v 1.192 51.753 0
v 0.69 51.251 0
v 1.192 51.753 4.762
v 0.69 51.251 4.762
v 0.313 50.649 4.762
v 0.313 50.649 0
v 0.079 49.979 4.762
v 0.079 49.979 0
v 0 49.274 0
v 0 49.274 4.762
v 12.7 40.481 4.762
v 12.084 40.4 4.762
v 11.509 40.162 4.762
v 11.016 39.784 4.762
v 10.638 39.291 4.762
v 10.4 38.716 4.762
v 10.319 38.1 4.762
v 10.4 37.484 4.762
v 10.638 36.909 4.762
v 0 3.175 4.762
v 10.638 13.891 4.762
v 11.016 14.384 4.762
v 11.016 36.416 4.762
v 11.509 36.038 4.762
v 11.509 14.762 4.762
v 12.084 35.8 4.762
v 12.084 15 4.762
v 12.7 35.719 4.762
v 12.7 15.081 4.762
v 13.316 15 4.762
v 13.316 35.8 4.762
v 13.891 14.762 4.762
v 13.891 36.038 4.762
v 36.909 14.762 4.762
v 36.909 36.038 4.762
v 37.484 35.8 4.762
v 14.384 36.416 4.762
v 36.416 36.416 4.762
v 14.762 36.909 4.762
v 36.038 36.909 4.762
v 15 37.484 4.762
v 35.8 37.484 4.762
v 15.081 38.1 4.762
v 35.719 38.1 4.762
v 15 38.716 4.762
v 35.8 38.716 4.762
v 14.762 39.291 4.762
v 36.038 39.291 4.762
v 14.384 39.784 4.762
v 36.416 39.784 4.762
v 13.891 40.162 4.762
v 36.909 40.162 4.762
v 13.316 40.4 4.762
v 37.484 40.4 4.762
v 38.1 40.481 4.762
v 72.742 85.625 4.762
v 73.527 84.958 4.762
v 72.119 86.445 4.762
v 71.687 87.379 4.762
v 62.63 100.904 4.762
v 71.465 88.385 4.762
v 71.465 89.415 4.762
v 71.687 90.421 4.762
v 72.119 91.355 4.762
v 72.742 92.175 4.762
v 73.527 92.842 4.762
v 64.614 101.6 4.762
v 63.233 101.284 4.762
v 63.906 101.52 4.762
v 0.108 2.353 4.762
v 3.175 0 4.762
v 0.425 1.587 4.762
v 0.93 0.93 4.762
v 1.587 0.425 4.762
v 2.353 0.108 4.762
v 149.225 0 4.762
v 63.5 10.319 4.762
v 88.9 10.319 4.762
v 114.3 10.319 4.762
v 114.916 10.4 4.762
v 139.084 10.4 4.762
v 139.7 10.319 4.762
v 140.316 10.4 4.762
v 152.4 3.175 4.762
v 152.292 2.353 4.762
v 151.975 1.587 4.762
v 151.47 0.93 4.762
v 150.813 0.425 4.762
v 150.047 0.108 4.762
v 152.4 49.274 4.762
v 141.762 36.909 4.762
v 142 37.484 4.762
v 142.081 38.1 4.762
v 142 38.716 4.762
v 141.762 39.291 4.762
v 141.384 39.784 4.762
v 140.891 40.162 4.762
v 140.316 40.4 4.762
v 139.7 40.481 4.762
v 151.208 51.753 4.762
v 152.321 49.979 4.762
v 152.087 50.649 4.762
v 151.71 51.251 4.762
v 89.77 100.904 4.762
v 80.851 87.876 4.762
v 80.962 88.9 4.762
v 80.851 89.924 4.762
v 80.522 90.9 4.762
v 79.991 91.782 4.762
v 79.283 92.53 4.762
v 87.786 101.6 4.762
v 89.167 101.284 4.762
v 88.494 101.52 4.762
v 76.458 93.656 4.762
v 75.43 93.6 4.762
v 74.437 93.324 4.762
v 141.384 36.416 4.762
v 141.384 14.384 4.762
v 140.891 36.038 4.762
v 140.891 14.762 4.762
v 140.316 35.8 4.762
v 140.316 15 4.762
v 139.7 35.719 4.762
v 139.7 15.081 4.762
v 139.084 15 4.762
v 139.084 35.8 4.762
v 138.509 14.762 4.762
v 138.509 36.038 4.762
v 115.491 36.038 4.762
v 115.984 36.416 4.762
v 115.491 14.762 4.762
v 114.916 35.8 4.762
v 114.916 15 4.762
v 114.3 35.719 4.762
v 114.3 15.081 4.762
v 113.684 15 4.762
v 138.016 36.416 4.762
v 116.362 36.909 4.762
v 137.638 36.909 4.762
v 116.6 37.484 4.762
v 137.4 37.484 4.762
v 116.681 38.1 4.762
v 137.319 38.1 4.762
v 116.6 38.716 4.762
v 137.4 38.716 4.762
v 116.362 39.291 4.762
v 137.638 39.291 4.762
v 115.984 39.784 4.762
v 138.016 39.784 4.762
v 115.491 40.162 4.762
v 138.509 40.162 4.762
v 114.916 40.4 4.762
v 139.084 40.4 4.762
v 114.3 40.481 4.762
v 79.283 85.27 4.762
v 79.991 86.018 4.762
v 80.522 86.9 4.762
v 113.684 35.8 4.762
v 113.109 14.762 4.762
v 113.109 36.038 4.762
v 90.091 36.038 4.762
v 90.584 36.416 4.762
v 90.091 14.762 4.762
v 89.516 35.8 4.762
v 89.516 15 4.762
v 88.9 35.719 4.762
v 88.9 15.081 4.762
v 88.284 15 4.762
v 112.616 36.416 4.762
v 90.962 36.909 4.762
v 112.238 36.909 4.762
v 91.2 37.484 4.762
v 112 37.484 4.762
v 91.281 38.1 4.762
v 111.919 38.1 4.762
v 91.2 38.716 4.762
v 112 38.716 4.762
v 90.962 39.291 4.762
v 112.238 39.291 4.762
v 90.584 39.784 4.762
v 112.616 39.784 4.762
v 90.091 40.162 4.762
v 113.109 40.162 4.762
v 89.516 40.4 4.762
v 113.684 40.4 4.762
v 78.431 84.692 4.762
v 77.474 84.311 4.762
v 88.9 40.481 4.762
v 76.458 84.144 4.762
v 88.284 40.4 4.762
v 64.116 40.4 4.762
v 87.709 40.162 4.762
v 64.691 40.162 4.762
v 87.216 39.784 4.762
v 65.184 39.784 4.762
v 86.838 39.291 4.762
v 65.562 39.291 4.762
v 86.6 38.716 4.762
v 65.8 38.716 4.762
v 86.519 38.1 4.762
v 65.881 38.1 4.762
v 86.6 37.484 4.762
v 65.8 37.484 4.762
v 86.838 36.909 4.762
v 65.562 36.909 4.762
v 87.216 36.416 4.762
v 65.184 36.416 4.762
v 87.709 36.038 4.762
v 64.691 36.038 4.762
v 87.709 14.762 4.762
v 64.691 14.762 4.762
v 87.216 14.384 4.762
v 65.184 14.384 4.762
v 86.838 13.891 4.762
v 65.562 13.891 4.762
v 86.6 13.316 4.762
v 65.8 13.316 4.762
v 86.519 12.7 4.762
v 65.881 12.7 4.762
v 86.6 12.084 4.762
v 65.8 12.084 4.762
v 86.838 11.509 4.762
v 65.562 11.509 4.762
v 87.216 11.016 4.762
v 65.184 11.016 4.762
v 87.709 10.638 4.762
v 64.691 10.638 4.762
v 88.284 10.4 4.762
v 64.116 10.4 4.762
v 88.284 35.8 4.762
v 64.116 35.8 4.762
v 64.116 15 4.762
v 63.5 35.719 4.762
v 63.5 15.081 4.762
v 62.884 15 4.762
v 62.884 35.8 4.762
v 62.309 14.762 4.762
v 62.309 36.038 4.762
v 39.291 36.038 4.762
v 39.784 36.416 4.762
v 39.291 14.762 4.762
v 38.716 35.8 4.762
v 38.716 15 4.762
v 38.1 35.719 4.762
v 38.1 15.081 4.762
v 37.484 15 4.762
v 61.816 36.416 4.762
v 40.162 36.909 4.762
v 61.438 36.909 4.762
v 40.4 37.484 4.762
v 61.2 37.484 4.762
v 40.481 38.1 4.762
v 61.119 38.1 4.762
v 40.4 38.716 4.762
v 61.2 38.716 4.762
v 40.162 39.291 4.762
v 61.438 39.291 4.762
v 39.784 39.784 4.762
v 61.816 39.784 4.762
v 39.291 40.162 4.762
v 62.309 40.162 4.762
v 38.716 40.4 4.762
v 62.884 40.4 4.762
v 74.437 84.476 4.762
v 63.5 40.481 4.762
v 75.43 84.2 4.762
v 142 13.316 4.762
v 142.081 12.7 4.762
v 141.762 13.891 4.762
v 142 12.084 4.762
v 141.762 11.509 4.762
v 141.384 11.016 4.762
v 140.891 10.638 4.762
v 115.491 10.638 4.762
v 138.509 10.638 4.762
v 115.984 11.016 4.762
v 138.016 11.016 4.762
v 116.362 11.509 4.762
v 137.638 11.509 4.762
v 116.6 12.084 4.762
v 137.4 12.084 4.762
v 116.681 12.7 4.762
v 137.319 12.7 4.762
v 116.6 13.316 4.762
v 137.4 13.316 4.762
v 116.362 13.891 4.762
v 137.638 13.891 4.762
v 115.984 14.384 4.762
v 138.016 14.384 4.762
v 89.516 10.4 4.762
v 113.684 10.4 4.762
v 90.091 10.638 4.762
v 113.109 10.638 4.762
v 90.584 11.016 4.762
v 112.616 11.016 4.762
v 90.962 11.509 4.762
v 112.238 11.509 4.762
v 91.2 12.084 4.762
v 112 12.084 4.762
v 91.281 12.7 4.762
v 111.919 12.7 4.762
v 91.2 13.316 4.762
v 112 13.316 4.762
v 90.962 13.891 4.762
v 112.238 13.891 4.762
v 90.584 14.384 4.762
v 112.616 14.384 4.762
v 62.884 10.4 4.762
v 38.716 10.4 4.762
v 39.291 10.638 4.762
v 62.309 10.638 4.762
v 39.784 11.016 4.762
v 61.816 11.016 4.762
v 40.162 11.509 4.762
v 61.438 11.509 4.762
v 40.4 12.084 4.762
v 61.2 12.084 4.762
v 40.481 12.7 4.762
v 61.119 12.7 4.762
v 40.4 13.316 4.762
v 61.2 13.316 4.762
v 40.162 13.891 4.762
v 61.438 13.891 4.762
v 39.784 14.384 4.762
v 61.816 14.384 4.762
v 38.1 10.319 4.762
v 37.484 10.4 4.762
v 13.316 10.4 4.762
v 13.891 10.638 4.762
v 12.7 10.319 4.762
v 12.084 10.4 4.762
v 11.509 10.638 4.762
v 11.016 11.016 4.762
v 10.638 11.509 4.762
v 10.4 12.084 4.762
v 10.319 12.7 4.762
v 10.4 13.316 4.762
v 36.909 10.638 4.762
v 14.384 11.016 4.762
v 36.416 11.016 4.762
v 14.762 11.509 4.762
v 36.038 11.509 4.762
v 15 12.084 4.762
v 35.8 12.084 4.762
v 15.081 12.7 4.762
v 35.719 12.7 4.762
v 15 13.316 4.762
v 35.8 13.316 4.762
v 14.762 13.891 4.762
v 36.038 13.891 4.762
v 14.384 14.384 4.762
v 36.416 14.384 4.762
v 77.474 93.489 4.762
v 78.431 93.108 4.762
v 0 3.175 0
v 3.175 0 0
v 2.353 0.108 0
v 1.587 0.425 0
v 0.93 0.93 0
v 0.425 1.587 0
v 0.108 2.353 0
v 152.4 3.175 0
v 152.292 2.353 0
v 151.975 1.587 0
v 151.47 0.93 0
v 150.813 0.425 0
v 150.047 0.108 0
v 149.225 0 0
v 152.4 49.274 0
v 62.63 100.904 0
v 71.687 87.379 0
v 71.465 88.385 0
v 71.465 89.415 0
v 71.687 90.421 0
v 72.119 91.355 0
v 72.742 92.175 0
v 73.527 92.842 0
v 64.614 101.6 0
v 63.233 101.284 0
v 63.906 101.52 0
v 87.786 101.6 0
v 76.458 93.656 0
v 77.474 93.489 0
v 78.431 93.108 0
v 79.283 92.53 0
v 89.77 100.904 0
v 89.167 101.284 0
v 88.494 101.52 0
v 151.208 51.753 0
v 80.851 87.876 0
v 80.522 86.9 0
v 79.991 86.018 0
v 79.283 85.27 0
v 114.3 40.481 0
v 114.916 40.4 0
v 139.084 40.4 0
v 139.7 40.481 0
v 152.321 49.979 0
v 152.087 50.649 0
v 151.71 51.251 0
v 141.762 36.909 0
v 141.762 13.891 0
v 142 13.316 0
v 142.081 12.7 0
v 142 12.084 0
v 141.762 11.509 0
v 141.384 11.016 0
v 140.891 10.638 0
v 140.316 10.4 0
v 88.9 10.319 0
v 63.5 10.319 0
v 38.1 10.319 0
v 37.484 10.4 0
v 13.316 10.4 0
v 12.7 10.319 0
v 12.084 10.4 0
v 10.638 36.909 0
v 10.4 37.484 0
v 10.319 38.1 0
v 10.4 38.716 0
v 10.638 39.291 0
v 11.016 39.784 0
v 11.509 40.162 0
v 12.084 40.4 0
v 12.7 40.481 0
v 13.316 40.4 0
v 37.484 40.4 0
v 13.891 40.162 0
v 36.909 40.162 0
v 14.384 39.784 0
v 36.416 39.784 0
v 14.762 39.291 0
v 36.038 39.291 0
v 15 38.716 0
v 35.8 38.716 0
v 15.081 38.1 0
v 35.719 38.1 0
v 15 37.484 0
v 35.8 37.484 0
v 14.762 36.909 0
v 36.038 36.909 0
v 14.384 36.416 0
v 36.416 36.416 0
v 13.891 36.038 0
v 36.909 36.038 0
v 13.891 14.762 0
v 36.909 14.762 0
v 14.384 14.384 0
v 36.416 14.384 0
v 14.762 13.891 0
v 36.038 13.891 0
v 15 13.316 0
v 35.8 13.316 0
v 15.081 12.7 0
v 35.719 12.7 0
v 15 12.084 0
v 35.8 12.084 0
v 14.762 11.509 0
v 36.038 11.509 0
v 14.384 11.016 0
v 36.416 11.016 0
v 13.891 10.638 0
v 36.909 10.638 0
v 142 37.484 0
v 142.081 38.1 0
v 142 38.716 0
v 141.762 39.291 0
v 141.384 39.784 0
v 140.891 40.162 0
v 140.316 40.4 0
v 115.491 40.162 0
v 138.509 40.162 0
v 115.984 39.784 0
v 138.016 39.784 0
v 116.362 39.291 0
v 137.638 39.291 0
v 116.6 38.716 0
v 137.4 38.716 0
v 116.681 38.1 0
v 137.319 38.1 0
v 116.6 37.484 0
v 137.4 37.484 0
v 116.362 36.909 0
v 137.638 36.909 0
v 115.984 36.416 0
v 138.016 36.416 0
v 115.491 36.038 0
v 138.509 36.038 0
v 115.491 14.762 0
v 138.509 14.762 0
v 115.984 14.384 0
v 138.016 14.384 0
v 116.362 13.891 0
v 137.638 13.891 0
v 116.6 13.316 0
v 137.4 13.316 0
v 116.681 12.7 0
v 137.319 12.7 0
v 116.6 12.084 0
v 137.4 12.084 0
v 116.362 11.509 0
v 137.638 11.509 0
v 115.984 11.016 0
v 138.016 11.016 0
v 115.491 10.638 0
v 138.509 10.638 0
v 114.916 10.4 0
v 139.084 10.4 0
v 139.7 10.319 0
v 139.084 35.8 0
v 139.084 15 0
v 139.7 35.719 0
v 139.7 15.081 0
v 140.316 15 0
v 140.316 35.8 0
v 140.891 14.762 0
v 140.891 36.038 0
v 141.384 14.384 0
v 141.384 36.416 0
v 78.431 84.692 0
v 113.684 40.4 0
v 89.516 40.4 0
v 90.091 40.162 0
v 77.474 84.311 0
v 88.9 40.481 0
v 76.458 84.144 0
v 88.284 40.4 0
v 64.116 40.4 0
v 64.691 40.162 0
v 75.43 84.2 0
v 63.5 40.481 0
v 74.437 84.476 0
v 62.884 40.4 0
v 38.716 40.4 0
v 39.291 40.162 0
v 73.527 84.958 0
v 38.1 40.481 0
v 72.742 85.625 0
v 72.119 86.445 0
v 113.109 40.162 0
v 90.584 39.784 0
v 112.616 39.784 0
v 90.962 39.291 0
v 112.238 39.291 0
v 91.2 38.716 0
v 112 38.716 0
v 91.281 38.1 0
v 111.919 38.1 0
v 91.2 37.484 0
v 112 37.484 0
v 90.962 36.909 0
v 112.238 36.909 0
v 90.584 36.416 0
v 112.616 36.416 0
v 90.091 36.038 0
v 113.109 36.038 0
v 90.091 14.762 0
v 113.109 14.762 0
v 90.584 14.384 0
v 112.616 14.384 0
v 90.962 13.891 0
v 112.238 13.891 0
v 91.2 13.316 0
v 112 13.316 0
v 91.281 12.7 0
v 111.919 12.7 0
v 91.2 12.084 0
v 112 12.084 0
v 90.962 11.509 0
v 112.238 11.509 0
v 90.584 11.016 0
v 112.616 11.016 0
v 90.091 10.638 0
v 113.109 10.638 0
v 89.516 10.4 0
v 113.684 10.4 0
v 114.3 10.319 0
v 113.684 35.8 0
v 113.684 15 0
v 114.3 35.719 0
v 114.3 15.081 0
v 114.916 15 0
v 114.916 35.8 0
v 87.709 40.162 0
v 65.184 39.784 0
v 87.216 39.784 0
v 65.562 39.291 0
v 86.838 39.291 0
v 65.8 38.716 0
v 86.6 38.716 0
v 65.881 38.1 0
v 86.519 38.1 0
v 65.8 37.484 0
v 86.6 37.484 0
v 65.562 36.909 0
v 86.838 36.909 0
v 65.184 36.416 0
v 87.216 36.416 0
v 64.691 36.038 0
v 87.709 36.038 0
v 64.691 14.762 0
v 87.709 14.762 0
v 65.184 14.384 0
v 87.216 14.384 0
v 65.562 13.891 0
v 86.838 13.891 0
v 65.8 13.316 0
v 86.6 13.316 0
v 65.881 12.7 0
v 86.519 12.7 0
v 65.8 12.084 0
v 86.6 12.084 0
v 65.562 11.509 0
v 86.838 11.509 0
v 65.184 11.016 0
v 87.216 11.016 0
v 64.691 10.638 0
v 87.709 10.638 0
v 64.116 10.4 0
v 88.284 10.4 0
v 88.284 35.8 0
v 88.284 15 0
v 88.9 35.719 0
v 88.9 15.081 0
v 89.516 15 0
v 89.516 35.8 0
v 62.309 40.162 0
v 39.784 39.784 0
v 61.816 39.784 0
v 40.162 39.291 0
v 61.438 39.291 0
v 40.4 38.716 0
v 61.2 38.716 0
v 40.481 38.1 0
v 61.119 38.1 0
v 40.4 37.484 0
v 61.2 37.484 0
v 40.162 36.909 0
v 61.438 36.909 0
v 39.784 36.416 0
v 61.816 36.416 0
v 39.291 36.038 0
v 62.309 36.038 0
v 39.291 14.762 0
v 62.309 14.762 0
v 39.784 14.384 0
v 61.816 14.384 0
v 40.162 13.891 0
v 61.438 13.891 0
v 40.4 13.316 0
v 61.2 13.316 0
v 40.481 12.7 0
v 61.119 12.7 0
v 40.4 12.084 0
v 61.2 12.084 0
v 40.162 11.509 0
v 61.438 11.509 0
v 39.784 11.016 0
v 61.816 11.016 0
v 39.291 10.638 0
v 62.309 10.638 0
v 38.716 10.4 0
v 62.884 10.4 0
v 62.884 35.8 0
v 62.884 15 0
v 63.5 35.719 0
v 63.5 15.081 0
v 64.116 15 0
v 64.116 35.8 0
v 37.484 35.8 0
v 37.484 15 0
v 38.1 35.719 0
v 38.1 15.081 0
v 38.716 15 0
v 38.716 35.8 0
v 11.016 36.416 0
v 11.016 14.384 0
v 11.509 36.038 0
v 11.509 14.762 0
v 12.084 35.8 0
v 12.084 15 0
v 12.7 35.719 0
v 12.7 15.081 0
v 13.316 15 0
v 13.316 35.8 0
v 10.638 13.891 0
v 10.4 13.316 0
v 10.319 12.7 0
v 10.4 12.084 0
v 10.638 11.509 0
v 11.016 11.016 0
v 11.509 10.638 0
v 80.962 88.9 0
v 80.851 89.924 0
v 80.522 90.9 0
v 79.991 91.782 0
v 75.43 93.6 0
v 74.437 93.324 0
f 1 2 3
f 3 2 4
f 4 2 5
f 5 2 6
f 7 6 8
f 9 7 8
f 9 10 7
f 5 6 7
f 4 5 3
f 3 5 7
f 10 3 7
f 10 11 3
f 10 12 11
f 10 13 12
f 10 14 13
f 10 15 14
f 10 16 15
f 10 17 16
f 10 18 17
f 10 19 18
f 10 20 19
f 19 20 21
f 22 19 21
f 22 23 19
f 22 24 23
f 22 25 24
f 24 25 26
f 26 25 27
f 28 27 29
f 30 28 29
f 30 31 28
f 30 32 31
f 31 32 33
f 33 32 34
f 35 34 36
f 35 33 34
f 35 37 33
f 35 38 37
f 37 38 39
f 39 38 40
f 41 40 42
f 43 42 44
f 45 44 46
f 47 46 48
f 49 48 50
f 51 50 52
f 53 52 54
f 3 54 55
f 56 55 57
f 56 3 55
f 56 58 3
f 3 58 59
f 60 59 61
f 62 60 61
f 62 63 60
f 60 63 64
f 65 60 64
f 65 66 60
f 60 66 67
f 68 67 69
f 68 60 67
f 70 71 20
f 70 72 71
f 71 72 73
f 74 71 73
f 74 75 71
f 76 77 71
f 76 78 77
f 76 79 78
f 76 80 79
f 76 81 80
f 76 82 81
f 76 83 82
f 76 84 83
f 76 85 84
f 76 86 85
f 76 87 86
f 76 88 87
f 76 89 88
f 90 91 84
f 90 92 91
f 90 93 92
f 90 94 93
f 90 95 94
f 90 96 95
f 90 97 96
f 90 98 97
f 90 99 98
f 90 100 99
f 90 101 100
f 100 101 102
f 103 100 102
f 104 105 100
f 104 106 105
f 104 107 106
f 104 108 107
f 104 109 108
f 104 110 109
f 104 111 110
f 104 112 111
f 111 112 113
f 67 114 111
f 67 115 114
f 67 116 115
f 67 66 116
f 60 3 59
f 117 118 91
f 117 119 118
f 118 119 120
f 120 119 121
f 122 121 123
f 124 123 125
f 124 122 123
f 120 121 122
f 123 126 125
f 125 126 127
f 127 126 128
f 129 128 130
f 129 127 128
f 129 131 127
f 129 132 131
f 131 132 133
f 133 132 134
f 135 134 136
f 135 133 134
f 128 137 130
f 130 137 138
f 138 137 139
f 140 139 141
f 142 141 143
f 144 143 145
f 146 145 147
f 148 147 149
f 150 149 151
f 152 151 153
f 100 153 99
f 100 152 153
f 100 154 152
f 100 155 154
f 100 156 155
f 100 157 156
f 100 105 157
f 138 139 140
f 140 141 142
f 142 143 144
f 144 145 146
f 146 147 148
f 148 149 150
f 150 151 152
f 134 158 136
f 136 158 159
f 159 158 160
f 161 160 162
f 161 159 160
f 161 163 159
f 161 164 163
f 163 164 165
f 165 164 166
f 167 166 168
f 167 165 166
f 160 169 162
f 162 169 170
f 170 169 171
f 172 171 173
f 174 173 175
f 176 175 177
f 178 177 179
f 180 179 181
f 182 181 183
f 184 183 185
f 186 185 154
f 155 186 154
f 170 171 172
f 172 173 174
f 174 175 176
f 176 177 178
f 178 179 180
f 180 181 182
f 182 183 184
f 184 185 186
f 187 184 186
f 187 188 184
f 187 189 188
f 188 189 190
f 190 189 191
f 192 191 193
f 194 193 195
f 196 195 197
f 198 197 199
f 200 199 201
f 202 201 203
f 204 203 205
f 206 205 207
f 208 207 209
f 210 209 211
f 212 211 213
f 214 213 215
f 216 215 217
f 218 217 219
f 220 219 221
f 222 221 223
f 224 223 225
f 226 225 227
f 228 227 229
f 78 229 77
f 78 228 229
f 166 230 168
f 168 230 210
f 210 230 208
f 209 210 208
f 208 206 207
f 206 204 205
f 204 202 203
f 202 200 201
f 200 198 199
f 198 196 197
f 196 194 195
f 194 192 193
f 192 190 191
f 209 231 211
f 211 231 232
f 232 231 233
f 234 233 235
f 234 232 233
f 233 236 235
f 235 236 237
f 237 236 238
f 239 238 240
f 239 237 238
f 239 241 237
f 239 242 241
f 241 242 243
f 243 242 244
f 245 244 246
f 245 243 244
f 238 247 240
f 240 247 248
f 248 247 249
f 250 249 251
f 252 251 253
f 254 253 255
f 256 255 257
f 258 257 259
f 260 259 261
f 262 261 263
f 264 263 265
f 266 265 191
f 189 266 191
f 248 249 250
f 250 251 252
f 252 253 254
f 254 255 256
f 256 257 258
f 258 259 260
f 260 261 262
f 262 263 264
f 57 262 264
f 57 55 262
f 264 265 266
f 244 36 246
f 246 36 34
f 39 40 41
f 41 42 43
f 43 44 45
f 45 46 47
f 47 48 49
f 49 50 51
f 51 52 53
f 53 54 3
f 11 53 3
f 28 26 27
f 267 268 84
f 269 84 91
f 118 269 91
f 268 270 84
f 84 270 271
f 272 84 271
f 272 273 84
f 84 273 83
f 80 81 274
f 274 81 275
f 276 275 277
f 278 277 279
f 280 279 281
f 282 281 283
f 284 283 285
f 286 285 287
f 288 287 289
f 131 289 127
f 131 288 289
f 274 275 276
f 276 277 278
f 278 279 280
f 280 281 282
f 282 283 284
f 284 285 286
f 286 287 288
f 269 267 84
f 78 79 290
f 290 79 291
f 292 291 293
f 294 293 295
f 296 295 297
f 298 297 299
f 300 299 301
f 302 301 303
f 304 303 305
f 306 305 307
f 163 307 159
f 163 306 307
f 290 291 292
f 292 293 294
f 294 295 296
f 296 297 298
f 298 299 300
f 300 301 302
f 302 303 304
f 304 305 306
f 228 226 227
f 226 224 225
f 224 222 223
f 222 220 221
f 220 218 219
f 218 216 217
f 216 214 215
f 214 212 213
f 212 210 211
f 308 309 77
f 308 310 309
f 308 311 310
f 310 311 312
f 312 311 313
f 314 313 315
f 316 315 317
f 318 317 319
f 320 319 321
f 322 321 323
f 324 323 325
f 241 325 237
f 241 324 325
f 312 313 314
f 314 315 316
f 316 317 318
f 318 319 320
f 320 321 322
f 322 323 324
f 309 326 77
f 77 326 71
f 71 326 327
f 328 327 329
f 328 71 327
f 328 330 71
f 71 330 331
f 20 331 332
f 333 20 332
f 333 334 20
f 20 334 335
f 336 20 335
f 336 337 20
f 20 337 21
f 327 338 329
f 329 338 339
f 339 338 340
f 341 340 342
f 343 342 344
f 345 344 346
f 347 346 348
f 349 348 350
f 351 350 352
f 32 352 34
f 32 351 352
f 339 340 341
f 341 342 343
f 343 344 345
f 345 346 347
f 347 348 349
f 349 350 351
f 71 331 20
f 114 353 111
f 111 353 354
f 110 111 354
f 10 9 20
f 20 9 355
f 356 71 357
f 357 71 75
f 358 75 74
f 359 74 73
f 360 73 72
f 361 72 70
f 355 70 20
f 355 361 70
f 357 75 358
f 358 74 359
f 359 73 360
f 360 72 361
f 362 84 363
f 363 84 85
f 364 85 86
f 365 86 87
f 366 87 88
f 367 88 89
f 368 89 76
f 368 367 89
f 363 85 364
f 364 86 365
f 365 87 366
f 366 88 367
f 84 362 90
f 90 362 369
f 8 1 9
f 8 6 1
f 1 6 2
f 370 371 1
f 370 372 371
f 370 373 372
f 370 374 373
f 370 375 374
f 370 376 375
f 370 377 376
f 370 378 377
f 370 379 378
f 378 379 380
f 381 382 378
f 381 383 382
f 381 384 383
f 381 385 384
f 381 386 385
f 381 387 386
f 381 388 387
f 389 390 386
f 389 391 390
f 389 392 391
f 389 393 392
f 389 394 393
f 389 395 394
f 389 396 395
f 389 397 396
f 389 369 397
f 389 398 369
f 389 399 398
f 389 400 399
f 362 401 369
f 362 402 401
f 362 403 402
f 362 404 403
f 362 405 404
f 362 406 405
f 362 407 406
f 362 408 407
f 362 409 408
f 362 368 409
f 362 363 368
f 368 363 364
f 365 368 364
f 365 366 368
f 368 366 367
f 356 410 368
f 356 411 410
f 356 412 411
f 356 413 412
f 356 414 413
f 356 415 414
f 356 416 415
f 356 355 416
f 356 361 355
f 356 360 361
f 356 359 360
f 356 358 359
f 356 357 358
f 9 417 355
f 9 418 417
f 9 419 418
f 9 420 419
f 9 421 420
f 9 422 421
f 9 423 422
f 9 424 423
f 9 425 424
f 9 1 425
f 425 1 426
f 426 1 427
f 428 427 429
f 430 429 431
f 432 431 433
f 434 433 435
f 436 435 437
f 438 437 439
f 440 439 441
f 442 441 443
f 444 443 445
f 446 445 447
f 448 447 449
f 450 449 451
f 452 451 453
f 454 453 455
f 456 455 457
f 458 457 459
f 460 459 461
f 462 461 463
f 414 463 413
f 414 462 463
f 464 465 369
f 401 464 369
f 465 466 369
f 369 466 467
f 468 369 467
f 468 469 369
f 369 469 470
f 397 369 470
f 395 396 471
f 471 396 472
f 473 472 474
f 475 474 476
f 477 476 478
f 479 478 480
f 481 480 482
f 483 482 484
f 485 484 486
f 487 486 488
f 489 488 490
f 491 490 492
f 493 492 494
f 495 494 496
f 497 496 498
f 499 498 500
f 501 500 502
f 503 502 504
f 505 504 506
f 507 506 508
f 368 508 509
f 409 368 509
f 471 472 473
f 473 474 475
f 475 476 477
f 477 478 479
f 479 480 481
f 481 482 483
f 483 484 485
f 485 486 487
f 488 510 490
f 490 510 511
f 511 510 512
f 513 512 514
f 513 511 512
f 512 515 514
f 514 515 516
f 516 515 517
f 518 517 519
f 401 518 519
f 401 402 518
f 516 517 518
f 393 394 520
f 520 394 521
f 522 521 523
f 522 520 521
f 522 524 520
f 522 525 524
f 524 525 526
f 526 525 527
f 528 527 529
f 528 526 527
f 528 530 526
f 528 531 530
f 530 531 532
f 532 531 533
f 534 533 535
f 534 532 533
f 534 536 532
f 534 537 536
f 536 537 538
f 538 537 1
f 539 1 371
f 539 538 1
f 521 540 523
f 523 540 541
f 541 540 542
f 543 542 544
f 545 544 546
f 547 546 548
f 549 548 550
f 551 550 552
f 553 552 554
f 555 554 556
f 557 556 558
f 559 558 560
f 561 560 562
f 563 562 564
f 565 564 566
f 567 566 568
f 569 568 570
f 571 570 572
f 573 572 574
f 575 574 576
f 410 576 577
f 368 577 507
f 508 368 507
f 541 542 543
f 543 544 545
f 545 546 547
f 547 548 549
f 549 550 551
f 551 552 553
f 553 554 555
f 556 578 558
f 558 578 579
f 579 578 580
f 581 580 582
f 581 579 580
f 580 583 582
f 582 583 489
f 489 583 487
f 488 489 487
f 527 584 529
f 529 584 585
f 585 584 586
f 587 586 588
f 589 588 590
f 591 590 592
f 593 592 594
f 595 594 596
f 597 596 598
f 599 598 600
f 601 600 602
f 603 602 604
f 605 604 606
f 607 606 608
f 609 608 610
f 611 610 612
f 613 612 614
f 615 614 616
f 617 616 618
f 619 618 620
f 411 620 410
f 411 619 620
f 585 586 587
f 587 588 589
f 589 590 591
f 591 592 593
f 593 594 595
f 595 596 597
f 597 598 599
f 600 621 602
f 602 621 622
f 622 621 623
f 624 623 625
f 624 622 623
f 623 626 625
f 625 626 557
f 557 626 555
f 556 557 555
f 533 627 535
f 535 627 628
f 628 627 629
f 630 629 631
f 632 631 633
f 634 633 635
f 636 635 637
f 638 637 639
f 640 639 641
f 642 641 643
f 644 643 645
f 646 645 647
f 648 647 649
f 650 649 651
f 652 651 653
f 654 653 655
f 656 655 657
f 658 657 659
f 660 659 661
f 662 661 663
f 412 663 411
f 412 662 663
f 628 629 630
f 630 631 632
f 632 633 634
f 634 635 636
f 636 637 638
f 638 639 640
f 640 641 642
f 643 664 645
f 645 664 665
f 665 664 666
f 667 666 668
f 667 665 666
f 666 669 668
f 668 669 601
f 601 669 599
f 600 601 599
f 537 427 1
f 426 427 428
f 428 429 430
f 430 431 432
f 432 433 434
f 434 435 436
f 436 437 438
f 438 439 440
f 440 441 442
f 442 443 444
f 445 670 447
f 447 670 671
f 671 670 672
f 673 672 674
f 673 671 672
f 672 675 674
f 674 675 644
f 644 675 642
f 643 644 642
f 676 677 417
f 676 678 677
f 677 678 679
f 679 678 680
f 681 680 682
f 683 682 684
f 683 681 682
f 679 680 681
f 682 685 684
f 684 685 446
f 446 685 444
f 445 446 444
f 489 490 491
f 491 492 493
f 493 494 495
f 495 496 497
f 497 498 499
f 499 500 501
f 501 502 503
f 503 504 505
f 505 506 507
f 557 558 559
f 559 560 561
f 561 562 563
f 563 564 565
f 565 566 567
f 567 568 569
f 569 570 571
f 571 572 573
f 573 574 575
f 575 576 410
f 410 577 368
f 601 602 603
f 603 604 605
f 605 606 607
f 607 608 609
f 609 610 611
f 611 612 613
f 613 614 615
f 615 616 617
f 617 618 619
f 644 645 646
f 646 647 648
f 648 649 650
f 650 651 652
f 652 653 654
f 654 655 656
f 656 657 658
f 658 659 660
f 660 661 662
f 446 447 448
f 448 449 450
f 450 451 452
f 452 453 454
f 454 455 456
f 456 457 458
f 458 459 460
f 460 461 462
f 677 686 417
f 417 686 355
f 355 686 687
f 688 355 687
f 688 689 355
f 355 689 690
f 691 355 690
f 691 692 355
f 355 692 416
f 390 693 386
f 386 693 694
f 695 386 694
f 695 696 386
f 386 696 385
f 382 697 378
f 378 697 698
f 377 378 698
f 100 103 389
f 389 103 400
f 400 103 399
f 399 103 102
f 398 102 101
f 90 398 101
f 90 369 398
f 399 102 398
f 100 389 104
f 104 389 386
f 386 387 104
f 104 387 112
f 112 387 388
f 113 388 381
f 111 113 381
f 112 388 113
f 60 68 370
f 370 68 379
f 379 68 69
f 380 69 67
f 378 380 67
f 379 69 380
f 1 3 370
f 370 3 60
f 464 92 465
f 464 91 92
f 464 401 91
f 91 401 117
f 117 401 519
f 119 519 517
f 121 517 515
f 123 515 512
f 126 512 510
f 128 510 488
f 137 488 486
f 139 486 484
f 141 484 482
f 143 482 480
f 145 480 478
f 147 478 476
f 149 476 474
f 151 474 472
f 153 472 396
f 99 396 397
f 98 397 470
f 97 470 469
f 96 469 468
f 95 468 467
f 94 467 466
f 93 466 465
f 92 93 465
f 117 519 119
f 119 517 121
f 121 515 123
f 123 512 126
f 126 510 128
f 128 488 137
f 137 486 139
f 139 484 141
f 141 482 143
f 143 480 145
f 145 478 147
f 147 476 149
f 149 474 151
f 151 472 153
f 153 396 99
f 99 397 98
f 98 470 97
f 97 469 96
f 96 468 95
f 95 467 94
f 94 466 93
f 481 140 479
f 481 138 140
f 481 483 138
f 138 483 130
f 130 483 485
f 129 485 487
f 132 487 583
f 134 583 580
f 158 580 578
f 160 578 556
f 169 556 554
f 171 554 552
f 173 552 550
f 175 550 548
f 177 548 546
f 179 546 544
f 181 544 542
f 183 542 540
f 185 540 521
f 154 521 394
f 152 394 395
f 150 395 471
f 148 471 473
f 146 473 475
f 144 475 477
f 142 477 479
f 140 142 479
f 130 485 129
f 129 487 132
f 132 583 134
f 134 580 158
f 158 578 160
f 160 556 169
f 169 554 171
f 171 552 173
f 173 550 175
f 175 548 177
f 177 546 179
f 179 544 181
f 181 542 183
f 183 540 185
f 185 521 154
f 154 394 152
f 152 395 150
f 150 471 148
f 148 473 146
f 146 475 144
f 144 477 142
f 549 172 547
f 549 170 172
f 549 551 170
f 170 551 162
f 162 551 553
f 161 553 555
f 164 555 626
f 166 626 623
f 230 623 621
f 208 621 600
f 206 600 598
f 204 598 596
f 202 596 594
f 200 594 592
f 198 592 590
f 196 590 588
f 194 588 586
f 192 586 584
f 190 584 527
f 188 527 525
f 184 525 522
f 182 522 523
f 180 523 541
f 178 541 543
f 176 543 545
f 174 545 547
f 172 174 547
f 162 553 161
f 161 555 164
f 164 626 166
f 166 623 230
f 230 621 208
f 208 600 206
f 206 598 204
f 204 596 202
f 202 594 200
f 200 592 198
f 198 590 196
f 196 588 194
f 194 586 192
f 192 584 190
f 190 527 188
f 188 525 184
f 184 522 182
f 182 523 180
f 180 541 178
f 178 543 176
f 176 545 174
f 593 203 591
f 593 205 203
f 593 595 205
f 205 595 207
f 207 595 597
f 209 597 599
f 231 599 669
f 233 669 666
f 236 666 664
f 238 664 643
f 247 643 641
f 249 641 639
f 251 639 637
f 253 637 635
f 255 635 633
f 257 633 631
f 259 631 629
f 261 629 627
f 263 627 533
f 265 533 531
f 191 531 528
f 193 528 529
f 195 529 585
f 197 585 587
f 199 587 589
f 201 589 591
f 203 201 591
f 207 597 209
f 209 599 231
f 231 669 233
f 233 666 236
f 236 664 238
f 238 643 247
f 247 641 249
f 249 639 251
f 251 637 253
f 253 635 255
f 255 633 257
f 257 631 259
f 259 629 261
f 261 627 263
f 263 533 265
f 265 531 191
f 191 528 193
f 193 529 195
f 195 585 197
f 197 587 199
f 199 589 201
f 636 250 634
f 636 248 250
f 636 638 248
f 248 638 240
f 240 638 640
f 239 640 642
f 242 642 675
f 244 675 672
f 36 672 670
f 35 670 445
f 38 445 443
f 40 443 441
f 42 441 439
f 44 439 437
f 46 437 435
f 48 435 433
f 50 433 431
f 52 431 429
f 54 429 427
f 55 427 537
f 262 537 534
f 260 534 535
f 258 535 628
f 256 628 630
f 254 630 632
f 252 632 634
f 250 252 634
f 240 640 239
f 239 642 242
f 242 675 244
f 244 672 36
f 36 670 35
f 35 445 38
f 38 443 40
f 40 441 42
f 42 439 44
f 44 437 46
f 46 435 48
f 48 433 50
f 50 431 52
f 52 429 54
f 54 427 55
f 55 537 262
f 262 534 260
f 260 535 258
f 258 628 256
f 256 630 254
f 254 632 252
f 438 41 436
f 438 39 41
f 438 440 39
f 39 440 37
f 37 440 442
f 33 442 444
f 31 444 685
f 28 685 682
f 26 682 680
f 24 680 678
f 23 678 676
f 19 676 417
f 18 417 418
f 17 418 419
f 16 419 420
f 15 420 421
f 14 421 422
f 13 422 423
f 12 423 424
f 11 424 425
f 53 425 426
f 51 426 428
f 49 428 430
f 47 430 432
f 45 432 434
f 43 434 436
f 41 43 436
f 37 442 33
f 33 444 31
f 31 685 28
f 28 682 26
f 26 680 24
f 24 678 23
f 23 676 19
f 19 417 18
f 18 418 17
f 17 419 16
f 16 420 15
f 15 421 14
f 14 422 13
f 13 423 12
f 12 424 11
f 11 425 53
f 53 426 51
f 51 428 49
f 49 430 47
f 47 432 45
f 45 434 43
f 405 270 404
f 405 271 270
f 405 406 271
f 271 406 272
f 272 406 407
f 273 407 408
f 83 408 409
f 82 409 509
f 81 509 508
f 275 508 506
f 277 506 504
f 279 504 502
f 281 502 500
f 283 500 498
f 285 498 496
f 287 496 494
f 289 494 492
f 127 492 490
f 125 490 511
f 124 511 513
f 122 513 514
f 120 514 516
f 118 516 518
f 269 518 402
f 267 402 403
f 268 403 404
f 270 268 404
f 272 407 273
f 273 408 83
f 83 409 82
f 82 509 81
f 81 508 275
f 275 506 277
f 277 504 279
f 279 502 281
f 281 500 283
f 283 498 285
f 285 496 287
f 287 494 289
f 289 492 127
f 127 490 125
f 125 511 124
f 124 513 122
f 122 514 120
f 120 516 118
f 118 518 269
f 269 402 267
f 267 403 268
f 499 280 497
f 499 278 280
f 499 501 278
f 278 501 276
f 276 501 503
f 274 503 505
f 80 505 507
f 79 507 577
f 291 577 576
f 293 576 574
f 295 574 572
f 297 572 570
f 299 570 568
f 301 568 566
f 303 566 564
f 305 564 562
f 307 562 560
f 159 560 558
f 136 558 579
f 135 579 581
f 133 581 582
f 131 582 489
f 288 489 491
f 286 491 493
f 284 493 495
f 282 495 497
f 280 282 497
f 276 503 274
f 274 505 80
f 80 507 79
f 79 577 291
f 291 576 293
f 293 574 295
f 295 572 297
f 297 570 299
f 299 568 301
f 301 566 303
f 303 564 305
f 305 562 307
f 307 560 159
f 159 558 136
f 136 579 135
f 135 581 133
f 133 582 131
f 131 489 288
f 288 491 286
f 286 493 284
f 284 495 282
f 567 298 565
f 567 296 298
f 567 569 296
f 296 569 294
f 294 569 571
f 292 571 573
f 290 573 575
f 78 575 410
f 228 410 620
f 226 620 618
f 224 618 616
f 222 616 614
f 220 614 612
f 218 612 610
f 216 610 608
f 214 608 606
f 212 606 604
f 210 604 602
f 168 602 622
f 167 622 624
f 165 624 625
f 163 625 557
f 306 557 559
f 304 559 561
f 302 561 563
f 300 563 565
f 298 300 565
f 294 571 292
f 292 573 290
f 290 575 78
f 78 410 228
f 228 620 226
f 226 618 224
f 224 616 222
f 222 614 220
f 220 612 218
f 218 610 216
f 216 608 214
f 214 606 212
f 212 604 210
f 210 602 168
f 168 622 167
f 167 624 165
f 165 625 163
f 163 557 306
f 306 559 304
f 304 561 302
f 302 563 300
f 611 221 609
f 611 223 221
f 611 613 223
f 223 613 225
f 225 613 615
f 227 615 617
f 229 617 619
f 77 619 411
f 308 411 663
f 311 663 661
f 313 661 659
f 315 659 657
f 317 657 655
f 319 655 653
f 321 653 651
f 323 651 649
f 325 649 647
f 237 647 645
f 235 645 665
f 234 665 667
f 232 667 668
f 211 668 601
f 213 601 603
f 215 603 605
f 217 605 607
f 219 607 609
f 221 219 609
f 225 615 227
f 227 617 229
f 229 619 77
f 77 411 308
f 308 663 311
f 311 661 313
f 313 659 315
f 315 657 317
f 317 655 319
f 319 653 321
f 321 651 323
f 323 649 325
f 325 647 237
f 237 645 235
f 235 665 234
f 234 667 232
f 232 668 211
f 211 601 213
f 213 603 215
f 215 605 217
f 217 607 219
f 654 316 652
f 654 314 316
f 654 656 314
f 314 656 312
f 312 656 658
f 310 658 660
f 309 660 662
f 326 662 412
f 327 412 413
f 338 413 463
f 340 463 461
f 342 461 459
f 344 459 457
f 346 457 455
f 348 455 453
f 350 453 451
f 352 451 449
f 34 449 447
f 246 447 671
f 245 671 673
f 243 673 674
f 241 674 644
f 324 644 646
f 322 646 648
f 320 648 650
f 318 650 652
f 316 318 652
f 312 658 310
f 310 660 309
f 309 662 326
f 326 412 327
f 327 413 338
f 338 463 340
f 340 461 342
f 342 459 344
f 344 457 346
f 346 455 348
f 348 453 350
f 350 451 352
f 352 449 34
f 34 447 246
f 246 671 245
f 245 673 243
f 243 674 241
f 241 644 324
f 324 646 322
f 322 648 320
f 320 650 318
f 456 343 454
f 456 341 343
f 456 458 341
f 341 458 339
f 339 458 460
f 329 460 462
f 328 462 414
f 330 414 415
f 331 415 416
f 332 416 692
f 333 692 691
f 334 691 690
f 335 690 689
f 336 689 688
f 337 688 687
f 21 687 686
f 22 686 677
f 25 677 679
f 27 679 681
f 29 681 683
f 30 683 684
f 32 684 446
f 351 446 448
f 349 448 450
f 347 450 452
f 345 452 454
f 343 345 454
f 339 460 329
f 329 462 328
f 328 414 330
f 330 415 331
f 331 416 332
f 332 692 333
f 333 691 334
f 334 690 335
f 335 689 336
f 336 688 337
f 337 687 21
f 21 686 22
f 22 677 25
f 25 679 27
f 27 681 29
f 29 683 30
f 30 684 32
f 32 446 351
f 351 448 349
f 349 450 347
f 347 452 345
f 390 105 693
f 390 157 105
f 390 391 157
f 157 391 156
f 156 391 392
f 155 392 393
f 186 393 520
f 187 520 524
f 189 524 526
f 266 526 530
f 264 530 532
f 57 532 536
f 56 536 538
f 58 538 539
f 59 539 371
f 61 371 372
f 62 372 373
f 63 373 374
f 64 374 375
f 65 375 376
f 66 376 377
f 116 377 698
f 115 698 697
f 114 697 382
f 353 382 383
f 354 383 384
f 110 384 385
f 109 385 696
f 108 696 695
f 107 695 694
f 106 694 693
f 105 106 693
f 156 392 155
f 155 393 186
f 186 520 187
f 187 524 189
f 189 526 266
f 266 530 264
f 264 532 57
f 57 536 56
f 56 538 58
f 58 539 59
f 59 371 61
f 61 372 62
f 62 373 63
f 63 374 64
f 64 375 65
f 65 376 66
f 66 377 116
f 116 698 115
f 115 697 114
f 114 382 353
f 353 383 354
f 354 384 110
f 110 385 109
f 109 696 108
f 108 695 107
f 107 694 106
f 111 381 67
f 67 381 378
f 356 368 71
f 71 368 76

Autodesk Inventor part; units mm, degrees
ref_plane "YZ Plane" through (0, 0, 0) normal (1, 0, 0) x (0, 1, 0)
ref_plane "XZ Plane" through (0, 0, 0) normal (0, 1, 0) x (-1, 0, 0)
ref_plane "XY Plane" through (0, 0, 0) normal (0, 0, 1) x (1, 0, 0)
sketch "Sketch1" plane through (0, 0, 0) normal (0, 0, 1) x (1, 0, 0)
  line L0 (0, 0) -> (152.4, 0)
  line L1 (152.4, 0) -> (152.4, 101.6)
  line L2 (152.4, 101.6) -> (0, 101.6)
  line L3 (0, 101.6) -> (0, 0)
  dimension "d0" = 152.4
  dimension "d1" = 101.6
extrude "Extrusion1" add sketch "Sketch1" along normal blind 4.7625
sketch "Sketch2" plane through (0, 0, 4.7625) normal (0, 0, 1) x (1, 0, 0)
  line L0 (0, 0) -> (0, 101.6) projected
  line L1 (0, 101.6) -> (152.4, 101.6) projected
  circle A0 centre (76.2, 88.9) radius 4.7625
  dimension "d4" = 76.2
  dimension "d5" = 12.7
  dimension "d25" = 9.525
extrude "Extrusion2" cut sketch "Sketch2" against normal up to next
sketch "Sketch3" plane through (0, 0, 4.7625) normal (0, 0, 1) x (1, 0, 0)
  line L0 (0, 0) -> (0, 101.6) projected
  line L1 (152.4, 0) -> (0, 0) projected
  circle A0 centre (12.7, 12.7) radius 2.3813
  dimension "d8" = 4.7625
  dimension "d9" = 12.7
  dimension "d10" = 12.7
extrude "Extrusion3" cut sketch "Sketch3" against normal up to next
pattern_linear "Rectangular Pattern1" count 6 spacing 25.4 along (1, 0, 0) count 2 spacing 25.4 along (0, 1, 0) of "Extrusion3"
sketch "Sketch4" plane through (0, 0, 4.7625) normal (0, 0, 1) x (1, 0, 0)
  line L0 (0, 0) -> (0, 101.6) projected
  line L1 (152.4, 101.6) -> (152.4, 0) projected
  line L2 (0, 101.6) -> (152.4, 101.6) projected
  line L3 (0, 50.8) -> (63.5, 101.6)
  line L4 (0, 101.6) -> (0, 50.8)
  line L5 (63.5, 101.6) -> (0, 101.6)
  line L6 (152.4, 101.6) -> (152.4, 50.8)
  line L7 (88.9, 101.6) -> (152.4, 50.8)
  line L8 (152.4, 101.6) -> (88.9, 101.6)
  dimension "d19" = 63.5
  dimension "d20" = 63.5
  dimension "d21" = 50.8
extrude "Extrusion4" cut sketch "Sketch4" against normal up to next
fillet "Fillet1" radius 3.175 6 edges at (63.5, 101.6, 2.3813) (88.9, 101.6, 2.3813) (152.4, 50.8, 2.3813) (152.4, 0, 2.3813) (0, 0, 2.3813) (0, 50.8, 2.3813)
properties part number "Frame_MidRollerPlate" material "Aluminum-6061"
